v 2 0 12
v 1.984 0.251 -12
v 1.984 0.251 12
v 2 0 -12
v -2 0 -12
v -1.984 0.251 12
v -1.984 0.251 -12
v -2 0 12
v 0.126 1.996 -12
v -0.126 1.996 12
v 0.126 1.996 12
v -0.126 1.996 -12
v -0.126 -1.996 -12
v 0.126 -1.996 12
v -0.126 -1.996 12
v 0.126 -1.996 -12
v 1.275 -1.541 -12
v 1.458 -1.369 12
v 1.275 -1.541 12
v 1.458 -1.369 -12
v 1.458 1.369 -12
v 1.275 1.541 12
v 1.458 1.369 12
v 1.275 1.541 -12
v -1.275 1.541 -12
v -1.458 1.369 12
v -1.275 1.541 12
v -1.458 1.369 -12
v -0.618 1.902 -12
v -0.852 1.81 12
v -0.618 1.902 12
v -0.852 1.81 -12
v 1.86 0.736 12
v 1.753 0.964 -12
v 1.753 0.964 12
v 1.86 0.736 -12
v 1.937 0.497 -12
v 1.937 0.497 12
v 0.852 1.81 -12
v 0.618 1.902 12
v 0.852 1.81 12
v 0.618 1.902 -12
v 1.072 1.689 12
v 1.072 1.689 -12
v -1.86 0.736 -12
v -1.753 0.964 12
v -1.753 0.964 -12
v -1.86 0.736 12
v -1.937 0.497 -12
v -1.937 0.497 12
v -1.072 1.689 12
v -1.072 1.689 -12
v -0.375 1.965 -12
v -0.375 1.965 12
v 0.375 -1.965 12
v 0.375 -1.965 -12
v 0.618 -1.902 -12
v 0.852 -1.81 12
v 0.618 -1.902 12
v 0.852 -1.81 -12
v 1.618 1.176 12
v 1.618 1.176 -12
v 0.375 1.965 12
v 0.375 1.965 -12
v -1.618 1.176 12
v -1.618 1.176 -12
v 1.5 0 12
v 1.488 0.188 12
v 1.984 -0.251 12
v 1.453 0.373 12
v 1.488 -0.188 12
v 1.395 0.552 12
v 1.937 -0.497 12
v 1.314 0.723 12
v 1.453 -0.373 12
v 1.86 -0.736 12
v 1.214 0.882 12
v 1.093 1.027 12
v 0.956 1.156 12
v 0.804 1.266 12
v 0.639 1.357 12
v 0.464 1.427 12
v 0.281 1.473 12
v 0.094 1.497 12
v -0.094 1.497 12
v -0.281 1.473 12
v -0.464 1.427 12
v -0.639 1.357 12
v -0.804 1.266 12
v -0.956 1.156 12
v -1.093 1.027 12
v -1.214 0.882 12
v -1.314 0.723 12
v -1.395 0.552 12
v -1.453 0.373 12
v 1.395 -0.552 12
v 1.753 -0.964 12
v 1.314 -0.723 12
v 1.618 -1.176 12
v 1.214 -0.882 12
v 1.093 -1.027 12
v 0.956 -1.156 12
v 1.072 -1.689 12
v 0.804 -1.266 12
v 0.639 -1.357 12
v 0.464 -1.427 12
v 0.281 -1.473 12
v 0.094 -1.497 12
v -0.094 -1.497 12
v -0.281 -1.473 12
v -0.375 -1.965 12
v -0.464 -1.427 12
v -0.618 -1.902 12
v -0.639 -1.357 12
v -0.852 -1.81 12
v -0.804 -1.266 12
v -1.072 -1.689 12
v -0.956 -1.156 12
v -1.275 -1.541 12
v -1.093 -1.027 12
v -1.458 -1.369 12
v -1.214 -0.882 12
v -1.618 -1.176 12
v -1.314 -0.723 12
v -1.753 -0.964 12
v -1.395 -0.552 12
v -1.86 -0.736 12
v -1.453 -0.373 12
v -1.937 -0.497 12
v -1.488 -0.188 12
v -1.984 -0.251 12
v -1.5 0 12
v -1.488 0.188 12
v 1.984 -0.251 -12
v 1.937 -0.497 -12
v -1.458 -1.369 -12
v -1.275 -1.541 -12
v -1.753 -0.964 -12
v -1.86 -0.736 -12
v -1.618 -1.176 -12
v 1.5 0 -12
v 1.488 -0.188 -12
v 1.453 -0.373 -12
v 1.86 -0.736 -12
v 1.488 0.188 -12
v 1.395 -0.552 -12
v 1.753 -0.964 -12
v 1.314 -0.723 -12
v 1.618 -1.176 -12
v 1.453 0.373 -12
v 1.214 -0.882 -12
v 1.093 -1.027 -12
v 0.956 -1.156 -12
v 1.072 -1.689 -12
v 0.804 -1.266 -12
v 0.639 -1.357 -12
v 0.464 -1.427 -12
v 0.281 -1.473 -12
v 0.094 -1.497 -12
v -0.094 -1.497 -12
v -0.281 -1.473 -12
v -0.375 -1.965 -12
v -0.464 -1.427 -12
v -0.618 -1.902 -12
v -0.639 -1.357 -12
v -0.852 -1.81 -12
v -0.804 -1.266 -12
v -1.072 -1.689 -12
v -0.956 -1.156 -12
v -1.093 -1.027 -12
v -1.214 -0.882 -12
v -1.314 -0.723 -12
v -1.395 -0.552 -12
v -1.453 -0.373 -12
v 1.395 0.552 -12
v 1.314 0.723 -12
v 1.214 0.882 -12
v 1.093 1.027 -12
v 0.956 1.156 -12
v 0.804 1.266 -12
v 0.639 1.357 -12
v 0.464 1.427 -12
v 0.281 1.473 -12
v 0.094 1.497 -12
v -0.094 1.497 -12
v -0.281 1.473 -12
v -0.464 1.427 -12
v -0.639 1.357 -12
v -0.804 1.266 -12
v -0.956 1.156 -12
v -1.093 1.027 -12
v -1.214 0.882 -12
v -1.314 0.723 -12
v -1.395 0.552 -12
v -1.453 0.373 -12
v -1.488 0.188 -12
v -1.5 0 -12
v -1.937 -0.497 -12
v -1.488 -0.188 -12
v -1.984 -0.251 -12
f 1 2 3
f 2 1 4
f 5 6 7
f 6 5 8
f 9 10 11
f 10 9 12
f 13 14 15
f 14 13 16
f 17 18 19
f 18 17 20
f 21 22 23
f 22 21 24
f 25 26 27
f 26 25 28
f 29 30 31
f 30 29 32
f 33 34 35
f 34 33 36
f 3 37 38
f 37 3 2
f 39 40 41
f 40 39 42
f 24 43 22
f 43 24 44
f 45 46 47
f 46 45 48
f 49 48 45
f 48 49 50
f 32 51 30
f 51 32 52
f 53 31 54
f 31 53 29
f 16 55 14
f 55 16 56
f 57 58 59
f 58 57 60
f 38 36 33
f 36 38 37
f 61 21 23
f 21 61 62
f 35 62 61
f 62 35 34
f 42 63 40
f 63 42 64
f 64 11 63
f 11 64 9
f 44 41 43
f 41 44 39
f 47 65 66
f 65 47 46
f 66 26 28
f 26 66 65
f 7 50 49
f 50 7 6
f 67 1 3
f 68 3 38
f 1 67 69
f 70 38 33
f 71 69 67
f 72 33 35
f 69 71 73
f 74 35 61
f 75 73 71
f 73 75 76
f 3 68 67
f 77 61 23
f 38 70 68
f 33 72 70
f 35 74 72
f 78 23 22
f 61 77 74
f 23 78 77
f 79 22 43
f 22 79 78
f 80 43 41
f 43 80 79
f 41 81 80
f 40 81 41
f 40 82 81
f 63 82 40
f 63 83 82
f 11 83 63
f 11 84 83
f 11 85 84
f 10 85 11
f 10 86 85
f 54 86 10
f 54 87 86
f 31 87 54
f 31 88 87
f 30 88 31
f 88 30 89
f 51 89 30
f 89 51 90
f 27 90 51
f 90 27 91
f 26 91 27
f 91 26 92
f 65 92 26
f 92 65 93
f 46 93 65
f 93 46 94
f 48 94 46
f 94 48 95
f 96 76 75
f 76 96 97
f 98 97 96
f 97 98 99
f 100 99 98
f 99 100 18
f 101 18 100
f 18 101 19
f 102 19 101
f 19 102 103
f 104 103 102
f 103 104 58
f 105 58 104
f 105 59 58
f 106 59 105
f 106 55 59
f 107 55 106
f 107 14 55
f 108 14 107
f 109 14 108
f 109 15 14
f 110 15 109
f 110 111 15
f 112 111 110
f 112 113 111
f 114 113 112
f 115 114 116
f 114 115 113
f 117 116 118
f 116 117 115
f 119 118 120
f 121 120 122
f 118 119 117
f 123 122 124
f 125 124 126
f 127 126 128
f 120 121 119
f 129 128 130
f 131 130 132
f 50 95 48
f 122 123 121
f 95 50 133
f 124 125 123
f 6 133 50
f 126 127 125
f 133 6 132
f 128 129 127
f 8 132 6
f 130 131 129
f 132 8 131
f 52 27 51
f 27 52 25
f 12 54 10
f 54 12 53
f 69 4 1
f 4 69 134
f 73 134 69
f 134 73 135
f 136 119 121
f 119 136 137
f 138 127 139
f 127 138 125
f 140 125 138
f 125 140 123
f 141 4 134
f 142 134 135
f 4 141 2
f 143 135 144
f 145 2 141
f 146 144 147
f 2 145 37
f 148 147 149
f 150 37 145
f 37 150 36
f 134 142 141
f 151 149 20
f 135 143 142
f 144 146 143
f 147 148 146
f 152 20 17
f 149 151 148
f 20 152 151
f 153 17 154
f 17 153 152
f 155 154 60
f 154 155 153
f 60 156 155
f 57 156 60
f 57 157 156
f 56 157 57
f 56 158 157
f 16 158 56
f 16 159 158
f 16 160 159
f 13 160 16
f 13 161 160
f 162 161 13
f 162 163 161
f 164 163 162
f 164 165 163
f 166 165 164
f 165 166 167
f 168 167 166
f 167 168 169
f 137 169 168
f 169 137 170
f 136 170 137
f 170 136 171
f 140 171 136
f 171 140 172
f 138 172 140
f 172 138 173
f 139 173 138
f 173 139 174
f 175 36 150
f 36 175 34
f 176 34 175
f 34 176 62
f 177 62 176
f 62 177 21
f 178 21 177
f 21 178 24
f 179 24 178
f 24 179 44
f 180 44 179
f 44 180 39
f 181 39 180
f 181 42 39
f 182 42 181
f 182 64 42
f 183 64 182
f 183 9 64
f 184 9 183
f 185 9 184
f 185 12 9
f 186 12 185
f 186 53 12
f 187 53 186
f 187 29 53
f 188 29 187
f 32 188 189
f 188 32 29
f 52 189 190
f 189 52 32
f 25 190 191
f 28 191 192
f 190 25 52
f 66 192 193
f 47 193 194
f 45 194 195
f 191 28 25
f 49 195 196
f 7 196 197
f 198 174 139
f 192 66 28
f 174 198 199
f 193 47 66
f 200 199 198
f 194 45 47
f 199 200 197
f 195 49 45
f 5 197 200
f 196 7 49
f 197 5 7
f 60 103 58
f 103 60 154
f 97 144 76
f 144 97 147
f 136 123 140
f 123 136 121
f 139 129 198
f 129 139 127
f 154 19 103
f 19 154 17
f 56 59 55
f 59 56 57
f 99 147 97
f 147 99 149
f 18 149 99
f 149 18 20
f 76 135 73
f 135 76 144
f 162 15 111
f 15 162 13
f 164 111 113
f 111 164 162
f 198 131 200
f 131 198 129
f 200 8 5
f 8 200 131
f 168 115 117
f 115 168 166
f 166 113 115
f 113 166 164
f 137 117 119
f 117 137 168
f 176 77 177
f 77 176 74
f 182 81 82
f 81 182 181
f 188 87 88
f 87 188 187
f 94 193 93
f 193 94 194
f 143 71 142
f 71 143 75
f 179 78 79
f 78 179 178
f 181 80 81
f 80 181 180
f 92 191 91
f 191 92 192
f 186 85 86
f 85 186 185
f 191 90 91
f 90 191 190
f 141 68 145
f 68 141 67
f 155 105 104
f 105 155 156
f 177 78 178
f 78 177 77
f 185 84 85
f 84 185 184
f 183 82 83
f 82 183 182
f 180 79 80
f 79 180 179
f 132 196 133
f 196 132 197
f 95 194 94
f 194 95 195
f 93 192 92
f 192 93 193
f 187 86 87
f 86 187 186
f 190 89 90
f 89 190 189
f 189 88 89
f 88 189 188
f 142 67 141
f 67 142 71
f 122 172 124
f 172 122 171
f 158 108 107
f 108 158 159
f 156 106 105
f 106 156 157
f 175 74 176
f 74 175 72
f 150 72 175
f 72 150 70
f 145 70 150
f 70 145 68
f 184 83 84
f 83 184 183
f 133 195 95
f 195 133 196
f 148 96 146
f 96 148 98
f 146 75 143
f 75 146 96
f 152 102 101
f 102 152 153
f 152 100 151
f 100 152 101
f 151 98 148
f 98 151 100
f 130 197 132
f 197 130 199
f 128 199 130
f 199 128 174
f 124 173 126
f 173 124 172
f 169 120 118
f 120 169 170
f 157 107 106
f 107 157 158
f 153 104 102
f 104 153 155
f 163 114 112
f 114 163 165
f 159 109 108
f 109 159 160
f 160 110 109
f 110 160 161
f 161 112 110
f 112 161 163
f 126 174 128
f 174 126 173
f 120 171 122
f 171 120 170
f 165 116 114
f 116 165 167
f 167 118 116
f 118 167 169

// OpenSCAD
$fn = 50;


difference() {
	union() {
		translate(v = [0, 0, -12.0000000000]) {
			cylinder(h = 24, r = 2.0000000000);
		}
	}
	union() {
		translate(v = [0, 0, -100.0000000000]) {
			cylinder(h = 200, r = 1.5000000000);
		}
	}
}
